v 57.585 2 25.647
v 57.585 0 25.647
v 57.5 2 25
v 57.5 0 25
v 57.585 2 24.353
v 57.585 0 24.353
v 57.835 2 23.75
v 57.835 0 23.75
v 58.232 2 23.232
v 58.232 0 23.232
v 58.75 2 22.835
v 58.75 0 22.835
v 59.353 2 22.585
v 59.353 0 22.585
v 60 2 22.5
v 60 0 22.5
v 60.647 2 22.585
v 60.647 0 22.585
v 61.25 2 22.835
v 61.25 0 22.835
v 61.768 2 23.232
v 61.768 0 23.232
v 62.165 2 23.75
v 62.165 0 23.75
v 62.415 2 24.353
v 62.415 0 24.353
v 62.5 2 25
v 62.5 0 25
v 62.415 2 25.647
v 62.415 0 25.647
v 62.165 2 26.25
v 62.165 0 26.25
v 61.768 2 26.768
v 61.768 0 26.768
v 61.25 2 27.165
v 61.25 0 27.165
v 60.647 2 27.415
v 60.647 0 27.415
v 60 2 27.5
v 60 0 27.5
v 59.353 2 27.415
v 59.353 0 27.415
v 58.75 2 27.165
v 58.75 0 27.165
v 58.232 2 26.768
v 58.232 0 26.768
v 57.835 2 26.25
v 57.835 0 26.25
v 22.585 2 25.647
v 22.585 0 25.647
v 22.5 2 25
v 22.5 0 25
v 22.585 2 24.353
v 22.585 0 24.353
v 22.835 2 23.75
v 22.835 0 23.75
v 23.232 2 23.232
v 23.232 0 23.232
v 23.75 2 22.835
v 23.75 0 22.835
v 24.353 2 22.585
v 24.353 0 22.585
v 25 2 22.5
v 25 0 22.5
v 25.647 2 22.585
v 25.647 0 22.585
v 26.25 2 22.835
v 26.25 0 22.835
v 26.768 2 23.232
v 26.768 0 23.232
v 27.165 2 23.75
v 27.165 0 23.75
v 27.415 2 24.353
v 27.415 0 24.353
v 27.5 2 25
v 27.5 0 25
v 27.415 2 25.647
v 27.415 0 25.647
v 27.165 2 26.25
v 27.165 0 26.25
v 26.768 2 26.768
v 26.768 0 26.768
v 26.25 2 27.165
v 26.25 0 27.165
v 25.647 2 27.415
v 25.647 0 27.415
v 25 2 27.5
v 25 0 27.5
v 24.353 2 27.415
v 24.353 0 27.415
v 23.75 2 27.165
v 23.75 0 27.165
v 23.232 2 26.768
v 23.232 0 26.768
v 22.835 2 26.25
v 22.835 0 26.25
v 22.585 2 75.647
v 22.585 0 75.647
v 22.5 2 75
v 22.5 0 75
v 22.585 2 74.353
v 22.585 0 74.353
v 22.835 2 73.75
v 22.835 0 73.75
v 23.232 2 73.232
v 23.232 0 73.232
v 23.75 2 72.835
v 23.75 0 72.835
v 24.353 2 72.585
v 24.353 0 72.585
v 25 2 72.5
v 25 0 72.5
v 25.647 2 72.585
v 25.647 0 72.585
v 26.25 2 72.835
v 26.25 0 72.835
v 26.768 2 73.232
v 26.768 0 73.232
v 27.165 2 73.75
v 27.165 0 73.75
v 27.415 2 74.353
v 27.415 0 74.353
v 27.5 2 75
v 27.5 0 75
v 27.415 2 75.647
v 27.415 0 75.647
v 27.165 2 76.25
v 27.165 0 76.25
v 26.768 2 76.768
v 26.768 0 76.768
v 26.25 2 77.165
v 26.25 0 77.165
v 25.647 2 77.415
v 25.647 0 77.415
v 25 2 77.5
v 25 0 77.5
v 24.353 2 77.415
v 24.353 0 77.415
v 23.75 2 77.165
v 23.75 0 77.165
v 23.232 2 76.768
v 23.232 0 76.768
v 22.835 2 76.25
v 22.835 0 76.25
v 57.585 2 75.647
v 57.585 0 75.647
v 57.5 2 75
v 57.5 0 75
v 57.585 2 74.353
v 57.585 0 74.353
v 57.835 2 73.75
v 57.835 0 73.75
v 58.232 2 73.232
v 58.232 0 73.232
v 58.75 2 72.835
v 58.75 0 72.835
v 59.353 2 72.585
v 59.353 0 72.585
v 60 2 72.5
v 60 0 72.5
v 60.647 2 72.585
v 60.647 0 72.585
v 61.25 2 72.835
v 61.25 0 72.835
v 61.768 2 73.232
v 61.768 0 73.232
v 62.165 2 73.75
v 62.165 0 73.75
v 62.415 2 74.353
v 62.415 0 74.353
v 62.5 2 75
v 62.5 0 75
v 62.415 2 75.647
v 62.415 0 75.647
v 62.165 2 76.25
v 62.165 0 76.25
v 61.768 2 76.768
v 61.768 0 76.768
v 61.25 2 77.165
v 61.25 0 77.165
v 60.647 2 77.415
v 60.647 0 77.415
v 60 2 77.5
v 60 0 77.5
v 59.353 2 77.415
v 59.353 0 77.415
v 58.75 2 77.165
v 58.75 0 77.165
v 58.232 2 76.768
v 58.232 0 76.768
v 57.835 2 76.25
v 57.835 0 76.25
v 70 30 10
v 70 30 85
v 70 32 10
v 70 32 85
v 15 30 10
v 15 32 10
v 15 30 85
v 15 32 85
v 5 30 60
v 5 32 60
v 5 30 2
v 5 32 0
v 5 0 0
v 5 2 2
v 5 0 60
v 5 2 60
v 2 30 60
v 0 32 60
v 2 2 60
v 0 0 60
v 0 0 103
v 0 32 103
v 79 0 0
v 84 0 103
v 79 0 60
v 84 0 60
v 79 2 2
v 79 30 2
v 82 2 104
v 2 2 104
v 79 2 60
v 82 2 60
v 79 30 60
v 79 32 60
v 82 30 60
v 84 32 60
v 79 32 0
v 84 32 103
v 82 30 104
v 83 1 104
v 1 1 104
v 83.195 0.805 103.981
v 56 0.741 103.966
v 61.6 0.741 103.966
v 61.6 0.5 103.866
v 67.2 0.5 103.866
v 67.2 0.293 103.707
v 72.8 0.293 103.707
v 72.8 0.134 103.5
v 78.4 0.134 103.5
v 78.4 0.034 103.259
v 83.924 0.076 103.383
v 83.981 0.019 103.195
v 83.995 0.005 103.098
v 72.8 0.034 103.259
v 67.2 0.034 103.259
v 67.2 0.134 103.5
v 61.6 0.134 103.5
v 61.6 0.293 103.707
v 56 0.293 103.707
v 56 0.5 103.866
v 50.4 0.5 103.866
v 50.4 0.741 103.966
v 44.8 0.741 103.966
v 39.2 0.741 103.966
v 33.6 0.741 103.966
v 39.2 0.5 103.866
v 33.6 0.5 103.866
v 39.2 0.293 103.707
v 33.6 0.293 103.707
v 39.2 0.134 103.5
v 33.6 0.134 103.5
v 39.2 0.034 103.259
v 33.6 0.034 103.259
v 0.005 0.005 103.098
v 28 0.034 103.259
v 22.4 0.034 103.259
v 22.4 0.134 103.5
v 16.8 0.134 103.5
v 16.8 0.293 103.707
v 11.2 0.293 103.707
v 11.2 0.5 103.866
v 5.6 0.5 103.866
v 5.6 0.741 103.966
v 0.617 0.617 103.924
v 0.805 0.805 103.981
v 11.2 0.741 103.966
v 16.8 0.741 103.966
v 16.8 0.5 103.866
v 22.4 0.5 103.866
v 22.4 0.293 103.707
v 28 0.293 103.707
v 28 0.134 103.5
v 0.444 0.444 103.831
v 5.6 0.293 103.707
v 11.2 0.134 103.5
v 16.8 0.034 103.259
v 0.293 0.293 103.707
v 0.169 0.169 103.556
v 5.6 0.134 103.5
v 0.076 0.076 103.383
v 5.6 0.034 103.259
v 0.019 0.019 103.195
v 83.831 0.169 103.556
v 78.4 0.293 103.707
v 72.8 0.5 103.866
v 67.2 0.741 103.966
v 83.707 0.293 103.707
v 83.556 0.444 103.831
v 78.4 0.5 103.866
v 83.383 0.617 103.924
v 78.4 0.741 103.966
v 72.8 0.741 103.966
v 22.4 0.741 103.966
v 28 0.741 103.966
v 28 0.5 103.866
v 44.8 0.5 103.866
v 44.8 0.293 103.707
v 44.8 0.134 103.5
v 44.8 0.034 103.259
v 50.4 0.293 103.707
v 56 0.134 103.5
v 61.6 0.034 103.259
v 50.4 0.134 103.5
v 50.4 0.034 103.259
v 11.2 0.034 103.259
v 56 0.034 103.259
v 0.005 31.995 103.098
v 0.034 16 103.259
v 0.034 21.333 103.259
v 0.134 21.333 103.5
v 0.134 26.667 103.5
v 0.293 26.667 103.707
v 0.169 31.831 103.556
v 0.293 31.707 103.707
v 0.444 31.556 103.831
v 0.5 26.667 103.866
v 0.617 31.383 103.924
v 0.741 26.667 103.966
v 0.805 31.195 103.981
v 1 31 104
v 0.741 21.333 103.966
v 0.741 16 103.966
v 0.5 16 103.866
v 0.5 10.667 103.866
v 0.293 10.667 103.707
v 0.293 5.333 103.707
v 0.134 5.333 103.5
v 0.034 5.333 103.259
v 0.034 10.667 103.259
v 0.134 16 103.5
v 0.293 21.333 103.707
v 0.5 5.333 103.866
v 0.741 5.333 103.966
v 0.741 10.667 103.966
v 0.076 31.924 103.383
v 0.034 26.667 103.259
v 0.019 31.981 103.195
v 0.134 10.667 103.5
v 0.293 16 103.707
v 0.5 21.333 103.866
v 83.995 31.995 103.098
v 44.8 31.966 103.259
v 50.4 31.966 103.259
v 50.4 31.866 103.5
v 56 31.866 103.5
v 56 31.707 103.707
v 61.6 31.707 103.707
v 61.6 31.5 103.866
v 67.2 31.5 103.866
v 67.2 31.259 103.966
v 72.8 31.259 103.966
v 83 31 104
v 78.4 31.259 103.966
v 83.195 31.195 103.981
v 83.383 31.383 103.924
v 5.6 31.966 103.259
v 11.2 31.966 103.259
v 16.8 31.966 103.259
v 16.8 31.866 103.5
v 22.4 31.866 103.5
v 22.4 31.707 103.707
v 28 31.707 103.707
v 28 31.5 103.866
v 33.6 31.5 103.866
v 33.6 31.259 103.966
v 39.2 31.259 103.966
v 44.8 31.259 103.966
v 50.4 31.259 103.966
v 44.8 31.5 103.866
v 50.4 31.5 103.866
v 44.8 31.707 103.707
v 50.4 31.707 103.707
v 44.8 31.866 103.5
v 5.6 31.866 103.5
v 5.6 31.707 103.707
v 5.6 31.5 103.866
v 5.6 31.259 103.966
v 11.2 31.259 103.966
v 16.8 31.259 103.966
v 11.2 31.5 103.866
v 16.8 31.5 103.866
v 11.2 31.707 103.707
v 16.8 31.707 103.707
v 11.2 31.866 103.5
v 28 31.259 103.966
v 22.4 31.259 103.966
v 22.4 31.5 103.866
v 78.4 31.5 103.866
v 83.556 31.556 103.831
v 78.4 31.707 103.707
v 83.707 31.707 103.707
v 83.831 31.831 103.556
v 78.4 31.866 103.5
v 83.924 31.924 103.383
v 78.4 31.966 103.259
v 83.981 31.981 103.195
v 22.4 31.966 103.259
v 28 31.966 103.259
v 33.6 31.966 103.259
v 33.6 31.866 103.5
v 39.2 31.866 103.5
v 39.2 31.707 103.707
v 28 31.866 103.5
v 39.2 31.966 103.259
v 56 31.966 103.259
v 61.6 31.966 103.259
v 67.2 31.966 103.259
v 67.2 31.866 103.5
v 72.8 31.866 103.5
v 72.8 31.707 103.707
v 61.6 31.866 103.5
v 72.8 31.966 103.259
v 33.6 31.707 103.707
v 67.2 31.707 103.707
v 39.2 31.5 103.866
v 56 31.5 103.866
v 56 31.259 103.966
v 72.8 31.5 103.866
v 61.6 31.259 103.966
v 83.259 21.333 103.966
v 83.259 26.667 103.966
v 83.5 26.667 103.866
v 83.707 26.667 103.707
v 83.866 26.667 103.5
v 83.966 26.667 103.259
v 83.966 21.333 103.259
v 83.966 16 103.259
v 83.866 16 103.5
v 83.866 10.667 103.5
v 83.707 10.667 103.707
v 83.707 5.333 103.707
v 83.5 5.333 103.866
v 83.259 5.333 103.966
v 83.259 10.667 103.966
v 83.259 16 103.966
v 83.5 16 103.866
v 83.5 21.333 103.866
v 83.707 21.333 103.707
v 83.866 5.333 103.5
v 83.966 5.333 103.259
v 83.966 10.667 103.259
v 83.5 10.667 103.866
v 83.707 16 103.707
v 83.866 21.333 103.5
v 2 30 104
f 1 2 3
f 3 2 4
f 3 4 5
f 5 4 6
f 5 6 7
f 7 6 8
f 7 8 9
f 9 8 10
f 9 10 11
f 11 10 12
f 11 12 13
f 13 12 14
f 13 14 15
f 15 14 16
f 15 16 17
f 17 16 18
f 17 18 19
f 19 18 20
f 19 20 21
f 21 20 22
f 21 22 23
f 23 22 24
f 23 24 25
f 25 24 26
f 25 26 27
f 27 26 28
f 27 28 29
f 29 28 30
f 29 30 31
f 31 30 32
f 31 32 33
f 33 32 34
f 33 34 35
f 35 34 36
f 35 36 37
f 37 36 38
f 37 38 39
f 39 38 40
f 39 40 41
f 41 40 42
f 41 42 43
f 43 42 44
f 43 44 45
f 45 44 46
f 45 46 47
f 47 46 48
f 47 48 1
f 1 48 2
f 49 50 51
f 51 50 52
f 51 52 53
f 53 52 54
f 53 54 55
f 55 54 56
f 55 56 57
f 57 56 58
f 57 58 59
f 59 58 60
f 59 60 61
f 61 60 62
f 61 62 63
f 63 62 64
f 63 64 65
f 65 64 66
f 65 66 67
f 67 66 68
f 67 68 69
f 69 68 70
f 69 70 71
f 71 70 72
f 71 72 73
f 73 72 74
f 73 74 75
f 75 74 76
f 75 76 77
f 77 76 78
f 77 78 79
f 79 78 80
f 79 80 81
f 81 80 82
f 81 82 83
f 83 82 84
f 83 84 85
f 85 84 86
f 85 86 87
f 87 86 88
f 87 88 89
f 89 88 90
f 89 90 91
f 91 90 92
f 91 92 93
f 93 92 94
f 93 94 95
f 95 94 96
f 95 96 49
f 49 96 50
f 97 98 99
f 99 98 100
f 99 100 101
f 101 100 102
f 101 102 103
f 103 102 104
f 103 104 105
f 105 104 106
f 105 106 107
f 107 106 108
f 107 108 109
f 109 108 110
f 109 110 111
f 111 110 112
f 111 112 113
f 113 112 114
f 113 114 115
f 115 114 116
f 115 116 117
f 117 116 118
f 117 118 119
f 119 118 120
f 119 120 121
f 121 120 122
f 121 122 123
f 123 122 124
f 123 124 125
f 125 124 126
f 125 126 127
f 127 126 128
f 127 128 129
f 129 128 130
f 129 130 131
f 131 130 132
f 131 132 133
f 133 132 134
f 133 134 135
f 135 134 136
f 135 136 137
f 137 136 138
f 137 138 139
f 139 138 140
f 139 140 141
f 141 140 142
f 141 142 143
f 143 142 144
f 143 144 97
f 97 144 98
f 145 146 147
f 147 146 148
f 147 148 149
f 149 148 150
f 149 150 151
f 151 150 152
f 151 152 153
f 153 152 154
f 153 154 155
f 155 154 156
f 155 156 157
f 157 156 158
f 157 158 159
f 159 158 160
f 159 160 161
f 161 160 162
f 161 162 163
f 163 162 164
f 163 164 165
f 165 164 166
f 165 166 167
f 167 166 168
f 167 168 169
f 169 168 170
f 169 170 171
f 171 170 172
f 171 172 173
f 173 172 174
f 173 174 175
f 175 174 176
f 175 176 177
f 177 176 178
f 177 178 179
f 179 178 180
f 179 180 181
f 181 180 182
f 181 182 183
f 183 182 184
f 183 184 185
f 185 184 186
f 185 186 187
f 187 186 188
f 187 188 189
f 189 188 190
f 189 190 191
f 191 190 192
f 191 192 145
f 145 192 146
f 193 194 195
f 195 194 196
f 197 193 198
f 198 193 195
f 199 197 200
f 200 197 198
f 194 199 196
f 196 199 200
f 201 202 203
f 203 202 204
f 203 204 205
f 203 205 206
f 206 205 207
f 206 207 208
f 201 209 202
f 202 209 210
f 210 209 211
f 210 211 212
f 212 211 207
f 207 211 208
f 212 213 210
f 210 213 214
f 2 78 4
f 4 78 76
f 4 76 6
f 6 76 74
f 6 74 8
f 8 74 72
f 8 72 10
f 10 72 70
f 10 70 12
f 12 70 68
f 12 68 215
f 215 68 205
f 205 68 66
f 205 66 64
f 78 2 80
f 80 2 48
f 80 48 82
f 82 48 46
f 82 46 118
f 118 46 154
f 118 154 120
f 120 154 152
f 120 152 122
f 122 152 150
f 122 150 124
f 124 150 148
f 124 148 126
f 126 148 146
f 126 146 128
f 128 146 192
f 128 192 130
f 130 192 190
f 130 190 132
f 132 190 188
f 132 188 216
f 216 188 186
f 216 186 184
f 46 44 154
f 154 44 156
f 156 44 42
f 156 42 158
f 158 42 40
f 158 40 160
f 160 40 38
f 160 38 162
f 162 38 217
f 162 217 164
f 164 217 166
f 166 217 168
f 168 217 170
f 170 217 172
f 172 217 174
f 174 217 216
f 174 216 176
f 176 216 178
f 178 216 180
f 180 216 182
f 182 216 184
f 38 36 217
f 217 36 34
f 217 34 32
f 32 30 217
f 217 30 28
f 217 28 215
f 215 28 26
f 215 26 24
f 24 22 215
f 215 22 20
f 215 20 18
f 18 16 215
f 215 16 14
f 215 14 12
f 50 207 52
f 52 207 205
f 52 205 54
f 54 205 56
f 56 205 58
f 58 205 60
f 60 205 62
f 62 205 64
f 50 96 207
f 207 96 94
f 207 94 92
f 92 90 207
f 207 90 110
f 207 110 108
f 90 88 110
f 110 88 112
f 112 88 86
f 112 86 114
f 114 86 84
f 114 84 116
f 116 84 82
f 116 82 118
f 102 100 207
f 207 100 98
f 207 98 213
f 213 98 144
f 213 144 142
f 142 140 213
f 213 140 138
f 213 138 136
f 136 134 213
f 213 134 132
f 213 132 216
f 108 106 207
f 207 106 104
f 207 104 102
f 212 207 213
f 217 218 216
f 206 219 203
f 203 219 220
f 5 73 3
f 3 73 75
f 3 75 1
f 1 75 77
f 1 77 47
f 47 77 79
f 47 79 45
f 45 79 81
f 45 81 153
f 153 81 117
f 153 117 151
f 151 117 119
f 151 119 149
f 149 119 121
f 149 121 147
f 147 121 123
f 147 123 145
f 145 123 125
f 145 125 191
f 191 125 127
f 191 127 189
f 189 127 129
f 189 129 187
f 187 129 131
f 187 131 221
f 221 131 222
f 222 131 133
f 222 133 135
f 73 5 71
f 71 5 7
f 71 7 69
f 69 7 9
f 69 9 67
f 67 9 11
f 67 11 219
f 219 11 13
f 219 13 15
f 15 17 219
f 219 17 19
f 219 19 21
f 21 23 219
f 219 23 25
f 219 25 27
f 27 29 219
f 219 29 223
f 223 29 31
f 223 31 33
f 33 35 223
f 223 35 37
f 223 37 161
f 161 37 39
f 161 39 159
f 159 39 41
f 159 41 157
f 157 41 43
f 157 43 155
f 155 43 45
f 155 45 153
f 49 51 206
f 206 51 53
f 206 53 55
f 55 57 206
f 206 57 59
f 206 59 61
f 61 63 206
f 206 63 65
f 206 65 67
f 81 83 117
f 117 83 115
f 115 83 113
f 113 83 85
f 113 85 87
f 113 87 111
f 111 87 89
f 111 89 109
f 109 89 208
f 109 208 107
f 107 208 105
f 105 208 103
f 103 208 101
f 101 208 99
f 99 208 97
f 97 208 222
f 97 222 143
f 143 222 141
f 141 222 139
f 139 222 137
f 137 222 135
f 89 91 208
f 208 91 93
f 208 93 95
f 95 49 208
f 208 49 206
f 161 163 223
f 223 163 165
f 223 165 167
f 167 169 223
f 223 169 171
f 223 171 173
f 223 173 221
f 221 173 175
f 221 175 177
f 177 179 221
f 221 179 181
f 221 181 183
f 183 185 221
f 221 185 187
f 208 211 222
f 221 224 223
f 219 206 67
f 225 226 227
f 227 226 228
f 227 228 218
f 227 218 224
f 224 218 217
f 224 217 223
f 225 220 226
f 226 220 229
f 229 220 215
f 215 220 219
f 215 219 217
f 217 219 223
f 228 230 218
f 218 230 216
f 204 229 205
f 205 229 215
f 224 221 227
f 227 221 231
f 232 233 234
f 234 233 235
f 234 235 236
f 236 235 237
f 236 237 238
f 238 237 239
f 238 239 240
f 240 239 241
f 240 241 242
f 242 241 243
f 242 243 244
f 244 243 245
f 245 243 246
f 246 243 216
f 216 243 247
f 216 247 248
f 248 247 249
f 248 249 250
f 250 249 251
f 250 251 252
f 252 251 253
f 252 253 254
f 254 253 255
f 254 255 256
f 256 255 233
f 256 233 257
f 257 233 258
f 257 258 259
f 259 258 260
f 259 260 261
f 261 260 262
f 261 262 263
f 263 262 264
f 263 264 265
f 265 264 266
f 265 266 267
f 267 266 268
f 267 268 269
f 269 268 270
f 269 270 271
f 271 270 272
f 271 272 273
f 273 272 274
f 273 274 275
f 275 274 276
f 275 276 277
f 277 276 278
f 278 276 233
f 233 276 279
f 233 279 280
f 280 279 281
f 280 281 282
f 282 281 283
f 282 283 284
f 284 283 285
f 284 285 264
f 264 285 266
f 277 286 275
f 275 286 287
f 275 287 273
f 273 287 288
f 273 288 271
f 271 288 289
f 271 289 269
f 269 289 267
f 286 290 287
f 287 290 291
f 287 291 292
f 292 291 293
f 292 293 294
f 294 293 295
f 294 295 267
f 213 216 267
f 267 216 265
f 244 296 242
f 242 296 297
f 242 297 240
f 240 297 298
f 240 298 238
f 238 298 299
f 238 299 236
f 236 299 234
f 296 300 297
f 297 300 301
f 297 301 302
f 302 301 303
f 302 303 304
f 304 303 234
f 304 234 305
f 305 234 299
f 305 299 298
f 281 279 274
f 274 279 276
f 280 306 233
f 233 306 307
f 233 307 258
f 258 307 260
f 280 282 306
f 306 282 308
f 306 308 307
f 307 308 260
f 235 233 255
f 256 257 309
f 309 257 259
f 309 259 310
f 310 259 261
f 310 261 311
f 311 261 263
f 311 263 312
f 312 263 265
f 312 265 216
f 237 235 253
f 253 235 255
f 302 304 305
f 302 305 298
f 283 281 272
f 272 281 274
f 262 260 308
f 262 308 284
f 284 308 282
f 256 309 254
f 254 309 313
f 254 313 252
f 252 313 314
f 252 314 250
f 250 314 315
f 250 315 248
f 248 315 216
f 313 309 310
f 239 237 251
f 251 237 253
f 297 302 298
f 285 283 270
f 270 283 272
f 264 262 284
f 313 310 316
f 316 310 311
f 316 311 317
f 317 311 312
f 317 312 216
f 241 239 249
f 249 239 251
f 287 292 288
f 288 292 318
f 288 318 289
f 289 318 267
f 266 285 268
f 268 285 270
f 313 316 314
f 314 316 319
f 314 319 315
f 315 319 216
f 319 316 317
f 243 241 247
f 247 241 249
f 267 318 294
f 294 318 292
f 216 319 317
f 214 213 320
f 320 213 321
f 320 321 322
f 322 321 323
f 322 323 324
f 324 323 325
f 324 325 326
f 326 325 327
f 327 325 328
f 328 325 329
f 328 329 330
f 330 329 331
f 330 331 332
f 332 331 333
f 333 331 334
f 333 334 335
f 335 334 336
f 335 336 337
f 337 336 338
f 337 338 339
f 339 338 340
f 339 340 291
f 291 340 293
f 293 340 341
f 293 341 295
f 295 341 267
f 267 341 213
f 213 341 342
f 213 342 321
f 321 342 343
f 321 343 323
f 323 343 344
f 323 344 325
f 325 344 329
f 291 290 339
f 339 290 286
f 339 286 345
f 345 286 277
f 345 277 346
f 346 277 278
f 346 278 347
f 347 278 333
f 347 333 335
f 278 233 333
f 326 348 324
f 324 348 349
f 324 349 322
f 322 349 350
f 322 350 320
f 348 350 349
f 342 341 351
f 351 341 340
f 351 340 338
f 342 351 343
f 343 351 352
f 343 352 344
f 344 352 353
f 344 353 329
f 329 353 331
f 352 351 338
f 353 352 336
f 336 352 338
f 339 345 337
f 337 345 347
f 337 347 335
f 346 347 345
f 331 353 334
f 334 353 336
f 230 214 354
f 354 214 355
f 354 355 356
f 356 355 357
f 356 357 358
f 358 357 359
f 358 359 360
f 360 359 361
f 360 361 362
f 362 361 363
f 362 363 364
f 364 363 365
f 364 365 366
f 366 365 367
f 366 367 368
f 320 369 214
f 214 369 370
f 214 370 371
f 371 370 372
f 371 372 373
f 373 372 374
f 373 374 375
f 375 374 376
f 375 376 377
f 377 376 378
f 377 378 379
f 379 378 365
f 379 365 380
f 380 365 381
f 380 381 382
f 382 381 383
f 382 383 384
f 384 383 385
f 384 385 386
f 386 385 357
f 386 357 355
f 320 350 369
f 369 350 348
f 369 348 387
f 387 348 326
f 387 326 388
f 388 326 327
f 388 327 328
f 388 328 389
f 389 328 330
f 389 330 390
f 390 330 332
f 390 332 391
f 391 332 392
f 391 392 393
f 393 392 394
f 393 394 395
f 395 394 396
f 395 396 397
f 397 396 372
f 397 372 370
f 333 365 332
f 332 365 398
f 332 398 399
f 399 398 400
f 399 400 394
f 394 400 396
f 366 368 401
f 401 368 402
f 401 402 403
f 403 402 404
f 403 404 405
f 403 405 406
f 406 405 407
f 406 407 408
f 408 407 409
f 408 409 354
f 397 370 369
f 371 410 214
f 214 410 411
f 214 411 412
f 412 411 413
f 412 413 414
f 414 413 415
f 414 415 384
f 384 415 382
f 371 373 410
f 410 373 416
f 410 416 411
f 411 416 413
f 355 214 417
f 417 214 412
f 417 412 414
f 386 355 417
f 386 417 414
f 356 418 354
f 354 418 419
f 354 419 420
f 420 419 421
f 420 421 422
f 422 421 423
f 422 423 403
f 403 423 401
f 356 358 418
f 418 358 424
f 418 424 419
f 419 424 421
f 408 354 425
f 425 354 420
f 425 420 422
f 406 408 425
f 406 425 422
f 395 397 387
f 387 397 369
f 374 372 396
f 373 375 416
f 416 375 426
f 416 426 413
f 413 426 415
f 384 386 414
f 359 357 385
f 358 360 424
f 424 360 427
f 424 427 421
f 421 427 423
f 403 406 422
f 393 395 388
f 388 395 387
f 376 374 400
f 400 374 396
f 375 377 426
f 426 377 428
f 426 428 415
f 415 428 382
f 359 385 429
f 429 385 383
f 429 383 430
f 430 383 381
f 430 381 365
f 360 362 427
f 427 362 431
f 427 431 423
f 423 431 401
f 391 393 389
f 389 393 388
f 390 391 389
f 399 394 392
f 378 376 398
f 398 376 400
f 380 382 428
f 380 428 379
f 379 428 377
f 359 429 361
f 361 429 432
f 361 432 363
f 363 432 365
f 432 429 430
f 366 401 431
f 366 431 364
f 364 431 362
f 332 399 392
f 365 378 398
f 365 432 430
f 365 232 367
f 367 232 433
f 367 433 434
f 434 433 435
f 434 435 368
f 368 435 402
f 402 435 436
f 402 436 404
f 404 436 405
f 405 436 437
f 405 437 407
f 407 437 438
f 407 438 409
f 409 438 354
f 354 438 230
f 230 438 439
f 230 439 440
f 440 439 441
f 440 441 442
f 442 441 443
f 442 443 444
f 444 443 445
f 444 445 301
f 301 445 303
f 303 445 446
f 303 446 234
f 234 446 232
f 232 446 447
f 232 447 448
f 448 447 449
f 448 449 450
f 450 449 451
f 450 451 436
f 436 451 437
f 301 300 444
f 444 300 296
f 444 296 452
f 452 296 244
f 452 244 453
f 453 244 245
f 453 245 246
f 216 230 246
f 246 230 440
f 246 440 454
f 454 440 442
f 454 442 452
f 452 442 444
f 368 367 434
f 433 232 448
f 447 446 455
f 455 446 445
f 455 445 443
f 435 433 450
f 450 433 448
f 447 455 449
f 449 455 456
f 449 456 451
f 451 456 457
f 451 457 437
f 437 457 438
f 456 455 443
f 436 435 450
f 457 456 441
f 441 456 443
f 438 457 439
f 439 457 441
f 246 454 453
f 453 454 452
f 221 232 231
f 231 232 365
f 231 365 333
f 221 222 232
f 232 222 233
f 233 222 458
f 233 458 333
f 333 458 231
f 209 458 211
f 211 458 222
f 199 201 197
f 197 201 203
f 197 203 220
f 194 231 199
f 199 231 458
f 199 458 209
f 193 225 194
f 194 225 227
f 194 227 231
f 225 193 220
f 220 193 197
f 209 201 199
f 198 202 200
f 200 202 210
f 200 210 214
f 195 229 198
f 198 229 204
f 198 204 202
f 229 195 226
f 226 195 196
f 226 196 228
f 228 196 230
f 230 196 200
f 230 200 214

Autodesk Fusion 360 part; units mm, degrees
sketch "Sketch1" plane through (0, 0, 0) normal (0, 1, 0) x (1, 0, 0) in component "Case"
  line L0 (0, 0) -> (84, 0)
  line L1 (84, 0) -> (84, -104)
  line L2 (84, -104) -> (0, -104)
  line L3 (0, -104) -> (0, 0)
  dimension "d1" = 84
  dimension "d2" = 104
extrude "Extrude1" add sketch "Sketch1" along normal blind 32 in component "Case"
shell "Shell1" thickness 2 removed faces 1 at (56, 10.6667, 104) in component "Case"
fillet "Fillet1" radius 1 4 edges at (0, 16, 104) (42, 32, 104) (84, 16, 104) (42, 0, 104) in component "Case"
sketch "Sketch2" plane through (84, 0, 0) normal (1, 0, 0) x (0, 1, 0) in component "Case"
  line L0 (32, 103) -> (0, 103)
  line L1 (0, 103) -> (0, 0)
  line L2 (0, 0) -> (32, 0)
  line L3 (32, 0) -> (32, 103)
  line L4 (0, 0) -> (32, 0)
  line L5 (32, 0) -> (32, 60)
  line L6 (32, 60) -> (0, 60)
  line L7 (0, 60) -> (0, 0)
  dimension "d8" = 60
extrude "Extrude2" cut sketch "Sketch2" against normal blind 5 contours L1 L2 L3 L4 L5 L6 L7 in component "Case"
sketch "Sketch3" plane through (0, 0, 0) normal (-1, 0, 0) x (0, -1, 0) in component "Case"
  line L0 (0, 103) -> (-32, 103)
  line L1 (-32, 103) -> (-32, 0)
  line L2 (-32, 0) -> (0, 0)
  line L3 (0, 0) -> (0, 103)
  line L4 (0, 0) -> (-32, 0)
  line L5 (-32, 0) -> (-32, 60)
  line L6 (-32, 60) -> (0, 60)
  line L7 (0, 60) -> (0, 0)
  dimension "d11" = 60
extrude "Extrude3" cut sketch "Sketch3" against normal blind 5 contours L1 L2 L3 L4 L5 L6 L7 in component "Case"
sketch "Sketch4" plane through (0, 32, 0) normal (0, 1, 0) x (-1, 0, 0) in component "Case"
  line L0 (-5, 60) -> (0, 60)
  line L1 (0, 60) -> (0, 103)
  line L2 (0, 103) -> (-84, 103)
  line L3 (-84, 103) -> (-84, 60)
  line L4 (-84, 60) -> (-79, 60)
  line L5 (-79, 60) -> (-79, 0)
  line L6 (-79, 0) -> (-5, 0)
  line L7 (-5, 0) -> (-5, 60)
  line L8 (-70, 85) -> (-15, 85)
  line L9 (-15, 85) -> (-15, 10)
  line L10 (-15, 10) -> (-70, 10)
  line L11 (-70, 10) -> (-70, 85)
  line L12 (-70, 85) -> (-15, 85)
  line L13 (-15, 85) -> (-15, 10)
  line L14 (-15, 10) -> (-70, 10)
  line L15 (-70, 10) -> (-70, 85)
extrude "Extrude4" cut sketch "Sketch4" against normal blind 5 contours L8 L9 L10 L11 L12 L13 L14 L15 in component "Case"
sketch "Sketch5" plane through (0, 0, 0) normal (0, -1, 0) x (1, 0, 0) in component "Case"
  line L0 (0, 60) -> (5, 60)
  line L1 (5, 60) -> (5, 0)
  line L2 (5, 0) -> (79, 0)
  line L3 (79, 0) -> (79, 60)
  line L4 (79, 60) -> (84, 60)
  line L5 (84, 60) -> (84, 103)
  line L6 (84, 103) -> (0, 103)
  line L7 (0, 103) -> (0, 60)
  circle A0 centre (25, 75) radius 2.5
  circle A1 centre (60, 75) radius 2.5
  dimension "d16" = 5
  dimension "d17" = 5
extrude "Extrude5" cut sketch "Sketch5" against normal blind 5 contours A0 | A1 in component "Case"
sketch "Sketch6" plane through (0, 0, 0) normal (0, -1, 0) x (1, 0, 0) in component "Case"
  circle A0 centre (25, 75) radius 2.5
  circle A1 centre (60, 75) radius 2.5
  line L0 (0, 60) -> (5, 60)
  line L1 (5, 60) -> (5, 0)
  line L2 (5, 0) -> (79, 0)
  line L3 (79, 0) -> (79, 60)
  line L4 (79, 60) -> (84, 60)
  line L5 (84, 60) -> (84, 103)
  line L6 (84, 103) -> (0, 103)
  line L7 (0, 103) -> (0, 60)
  circle A2 centre (25, 25) radius 2.5
  circle A3 centre (60, 25) radius 2.5
extrude "Extrude6" cut sketch "Sketch6" against normal blind 5 contours A2 | A3 in component "Case"
component "Case" placed x (1, 0, 0) y (0, 1, 0) z (0, 0, 1) at (0, 0, 0)
